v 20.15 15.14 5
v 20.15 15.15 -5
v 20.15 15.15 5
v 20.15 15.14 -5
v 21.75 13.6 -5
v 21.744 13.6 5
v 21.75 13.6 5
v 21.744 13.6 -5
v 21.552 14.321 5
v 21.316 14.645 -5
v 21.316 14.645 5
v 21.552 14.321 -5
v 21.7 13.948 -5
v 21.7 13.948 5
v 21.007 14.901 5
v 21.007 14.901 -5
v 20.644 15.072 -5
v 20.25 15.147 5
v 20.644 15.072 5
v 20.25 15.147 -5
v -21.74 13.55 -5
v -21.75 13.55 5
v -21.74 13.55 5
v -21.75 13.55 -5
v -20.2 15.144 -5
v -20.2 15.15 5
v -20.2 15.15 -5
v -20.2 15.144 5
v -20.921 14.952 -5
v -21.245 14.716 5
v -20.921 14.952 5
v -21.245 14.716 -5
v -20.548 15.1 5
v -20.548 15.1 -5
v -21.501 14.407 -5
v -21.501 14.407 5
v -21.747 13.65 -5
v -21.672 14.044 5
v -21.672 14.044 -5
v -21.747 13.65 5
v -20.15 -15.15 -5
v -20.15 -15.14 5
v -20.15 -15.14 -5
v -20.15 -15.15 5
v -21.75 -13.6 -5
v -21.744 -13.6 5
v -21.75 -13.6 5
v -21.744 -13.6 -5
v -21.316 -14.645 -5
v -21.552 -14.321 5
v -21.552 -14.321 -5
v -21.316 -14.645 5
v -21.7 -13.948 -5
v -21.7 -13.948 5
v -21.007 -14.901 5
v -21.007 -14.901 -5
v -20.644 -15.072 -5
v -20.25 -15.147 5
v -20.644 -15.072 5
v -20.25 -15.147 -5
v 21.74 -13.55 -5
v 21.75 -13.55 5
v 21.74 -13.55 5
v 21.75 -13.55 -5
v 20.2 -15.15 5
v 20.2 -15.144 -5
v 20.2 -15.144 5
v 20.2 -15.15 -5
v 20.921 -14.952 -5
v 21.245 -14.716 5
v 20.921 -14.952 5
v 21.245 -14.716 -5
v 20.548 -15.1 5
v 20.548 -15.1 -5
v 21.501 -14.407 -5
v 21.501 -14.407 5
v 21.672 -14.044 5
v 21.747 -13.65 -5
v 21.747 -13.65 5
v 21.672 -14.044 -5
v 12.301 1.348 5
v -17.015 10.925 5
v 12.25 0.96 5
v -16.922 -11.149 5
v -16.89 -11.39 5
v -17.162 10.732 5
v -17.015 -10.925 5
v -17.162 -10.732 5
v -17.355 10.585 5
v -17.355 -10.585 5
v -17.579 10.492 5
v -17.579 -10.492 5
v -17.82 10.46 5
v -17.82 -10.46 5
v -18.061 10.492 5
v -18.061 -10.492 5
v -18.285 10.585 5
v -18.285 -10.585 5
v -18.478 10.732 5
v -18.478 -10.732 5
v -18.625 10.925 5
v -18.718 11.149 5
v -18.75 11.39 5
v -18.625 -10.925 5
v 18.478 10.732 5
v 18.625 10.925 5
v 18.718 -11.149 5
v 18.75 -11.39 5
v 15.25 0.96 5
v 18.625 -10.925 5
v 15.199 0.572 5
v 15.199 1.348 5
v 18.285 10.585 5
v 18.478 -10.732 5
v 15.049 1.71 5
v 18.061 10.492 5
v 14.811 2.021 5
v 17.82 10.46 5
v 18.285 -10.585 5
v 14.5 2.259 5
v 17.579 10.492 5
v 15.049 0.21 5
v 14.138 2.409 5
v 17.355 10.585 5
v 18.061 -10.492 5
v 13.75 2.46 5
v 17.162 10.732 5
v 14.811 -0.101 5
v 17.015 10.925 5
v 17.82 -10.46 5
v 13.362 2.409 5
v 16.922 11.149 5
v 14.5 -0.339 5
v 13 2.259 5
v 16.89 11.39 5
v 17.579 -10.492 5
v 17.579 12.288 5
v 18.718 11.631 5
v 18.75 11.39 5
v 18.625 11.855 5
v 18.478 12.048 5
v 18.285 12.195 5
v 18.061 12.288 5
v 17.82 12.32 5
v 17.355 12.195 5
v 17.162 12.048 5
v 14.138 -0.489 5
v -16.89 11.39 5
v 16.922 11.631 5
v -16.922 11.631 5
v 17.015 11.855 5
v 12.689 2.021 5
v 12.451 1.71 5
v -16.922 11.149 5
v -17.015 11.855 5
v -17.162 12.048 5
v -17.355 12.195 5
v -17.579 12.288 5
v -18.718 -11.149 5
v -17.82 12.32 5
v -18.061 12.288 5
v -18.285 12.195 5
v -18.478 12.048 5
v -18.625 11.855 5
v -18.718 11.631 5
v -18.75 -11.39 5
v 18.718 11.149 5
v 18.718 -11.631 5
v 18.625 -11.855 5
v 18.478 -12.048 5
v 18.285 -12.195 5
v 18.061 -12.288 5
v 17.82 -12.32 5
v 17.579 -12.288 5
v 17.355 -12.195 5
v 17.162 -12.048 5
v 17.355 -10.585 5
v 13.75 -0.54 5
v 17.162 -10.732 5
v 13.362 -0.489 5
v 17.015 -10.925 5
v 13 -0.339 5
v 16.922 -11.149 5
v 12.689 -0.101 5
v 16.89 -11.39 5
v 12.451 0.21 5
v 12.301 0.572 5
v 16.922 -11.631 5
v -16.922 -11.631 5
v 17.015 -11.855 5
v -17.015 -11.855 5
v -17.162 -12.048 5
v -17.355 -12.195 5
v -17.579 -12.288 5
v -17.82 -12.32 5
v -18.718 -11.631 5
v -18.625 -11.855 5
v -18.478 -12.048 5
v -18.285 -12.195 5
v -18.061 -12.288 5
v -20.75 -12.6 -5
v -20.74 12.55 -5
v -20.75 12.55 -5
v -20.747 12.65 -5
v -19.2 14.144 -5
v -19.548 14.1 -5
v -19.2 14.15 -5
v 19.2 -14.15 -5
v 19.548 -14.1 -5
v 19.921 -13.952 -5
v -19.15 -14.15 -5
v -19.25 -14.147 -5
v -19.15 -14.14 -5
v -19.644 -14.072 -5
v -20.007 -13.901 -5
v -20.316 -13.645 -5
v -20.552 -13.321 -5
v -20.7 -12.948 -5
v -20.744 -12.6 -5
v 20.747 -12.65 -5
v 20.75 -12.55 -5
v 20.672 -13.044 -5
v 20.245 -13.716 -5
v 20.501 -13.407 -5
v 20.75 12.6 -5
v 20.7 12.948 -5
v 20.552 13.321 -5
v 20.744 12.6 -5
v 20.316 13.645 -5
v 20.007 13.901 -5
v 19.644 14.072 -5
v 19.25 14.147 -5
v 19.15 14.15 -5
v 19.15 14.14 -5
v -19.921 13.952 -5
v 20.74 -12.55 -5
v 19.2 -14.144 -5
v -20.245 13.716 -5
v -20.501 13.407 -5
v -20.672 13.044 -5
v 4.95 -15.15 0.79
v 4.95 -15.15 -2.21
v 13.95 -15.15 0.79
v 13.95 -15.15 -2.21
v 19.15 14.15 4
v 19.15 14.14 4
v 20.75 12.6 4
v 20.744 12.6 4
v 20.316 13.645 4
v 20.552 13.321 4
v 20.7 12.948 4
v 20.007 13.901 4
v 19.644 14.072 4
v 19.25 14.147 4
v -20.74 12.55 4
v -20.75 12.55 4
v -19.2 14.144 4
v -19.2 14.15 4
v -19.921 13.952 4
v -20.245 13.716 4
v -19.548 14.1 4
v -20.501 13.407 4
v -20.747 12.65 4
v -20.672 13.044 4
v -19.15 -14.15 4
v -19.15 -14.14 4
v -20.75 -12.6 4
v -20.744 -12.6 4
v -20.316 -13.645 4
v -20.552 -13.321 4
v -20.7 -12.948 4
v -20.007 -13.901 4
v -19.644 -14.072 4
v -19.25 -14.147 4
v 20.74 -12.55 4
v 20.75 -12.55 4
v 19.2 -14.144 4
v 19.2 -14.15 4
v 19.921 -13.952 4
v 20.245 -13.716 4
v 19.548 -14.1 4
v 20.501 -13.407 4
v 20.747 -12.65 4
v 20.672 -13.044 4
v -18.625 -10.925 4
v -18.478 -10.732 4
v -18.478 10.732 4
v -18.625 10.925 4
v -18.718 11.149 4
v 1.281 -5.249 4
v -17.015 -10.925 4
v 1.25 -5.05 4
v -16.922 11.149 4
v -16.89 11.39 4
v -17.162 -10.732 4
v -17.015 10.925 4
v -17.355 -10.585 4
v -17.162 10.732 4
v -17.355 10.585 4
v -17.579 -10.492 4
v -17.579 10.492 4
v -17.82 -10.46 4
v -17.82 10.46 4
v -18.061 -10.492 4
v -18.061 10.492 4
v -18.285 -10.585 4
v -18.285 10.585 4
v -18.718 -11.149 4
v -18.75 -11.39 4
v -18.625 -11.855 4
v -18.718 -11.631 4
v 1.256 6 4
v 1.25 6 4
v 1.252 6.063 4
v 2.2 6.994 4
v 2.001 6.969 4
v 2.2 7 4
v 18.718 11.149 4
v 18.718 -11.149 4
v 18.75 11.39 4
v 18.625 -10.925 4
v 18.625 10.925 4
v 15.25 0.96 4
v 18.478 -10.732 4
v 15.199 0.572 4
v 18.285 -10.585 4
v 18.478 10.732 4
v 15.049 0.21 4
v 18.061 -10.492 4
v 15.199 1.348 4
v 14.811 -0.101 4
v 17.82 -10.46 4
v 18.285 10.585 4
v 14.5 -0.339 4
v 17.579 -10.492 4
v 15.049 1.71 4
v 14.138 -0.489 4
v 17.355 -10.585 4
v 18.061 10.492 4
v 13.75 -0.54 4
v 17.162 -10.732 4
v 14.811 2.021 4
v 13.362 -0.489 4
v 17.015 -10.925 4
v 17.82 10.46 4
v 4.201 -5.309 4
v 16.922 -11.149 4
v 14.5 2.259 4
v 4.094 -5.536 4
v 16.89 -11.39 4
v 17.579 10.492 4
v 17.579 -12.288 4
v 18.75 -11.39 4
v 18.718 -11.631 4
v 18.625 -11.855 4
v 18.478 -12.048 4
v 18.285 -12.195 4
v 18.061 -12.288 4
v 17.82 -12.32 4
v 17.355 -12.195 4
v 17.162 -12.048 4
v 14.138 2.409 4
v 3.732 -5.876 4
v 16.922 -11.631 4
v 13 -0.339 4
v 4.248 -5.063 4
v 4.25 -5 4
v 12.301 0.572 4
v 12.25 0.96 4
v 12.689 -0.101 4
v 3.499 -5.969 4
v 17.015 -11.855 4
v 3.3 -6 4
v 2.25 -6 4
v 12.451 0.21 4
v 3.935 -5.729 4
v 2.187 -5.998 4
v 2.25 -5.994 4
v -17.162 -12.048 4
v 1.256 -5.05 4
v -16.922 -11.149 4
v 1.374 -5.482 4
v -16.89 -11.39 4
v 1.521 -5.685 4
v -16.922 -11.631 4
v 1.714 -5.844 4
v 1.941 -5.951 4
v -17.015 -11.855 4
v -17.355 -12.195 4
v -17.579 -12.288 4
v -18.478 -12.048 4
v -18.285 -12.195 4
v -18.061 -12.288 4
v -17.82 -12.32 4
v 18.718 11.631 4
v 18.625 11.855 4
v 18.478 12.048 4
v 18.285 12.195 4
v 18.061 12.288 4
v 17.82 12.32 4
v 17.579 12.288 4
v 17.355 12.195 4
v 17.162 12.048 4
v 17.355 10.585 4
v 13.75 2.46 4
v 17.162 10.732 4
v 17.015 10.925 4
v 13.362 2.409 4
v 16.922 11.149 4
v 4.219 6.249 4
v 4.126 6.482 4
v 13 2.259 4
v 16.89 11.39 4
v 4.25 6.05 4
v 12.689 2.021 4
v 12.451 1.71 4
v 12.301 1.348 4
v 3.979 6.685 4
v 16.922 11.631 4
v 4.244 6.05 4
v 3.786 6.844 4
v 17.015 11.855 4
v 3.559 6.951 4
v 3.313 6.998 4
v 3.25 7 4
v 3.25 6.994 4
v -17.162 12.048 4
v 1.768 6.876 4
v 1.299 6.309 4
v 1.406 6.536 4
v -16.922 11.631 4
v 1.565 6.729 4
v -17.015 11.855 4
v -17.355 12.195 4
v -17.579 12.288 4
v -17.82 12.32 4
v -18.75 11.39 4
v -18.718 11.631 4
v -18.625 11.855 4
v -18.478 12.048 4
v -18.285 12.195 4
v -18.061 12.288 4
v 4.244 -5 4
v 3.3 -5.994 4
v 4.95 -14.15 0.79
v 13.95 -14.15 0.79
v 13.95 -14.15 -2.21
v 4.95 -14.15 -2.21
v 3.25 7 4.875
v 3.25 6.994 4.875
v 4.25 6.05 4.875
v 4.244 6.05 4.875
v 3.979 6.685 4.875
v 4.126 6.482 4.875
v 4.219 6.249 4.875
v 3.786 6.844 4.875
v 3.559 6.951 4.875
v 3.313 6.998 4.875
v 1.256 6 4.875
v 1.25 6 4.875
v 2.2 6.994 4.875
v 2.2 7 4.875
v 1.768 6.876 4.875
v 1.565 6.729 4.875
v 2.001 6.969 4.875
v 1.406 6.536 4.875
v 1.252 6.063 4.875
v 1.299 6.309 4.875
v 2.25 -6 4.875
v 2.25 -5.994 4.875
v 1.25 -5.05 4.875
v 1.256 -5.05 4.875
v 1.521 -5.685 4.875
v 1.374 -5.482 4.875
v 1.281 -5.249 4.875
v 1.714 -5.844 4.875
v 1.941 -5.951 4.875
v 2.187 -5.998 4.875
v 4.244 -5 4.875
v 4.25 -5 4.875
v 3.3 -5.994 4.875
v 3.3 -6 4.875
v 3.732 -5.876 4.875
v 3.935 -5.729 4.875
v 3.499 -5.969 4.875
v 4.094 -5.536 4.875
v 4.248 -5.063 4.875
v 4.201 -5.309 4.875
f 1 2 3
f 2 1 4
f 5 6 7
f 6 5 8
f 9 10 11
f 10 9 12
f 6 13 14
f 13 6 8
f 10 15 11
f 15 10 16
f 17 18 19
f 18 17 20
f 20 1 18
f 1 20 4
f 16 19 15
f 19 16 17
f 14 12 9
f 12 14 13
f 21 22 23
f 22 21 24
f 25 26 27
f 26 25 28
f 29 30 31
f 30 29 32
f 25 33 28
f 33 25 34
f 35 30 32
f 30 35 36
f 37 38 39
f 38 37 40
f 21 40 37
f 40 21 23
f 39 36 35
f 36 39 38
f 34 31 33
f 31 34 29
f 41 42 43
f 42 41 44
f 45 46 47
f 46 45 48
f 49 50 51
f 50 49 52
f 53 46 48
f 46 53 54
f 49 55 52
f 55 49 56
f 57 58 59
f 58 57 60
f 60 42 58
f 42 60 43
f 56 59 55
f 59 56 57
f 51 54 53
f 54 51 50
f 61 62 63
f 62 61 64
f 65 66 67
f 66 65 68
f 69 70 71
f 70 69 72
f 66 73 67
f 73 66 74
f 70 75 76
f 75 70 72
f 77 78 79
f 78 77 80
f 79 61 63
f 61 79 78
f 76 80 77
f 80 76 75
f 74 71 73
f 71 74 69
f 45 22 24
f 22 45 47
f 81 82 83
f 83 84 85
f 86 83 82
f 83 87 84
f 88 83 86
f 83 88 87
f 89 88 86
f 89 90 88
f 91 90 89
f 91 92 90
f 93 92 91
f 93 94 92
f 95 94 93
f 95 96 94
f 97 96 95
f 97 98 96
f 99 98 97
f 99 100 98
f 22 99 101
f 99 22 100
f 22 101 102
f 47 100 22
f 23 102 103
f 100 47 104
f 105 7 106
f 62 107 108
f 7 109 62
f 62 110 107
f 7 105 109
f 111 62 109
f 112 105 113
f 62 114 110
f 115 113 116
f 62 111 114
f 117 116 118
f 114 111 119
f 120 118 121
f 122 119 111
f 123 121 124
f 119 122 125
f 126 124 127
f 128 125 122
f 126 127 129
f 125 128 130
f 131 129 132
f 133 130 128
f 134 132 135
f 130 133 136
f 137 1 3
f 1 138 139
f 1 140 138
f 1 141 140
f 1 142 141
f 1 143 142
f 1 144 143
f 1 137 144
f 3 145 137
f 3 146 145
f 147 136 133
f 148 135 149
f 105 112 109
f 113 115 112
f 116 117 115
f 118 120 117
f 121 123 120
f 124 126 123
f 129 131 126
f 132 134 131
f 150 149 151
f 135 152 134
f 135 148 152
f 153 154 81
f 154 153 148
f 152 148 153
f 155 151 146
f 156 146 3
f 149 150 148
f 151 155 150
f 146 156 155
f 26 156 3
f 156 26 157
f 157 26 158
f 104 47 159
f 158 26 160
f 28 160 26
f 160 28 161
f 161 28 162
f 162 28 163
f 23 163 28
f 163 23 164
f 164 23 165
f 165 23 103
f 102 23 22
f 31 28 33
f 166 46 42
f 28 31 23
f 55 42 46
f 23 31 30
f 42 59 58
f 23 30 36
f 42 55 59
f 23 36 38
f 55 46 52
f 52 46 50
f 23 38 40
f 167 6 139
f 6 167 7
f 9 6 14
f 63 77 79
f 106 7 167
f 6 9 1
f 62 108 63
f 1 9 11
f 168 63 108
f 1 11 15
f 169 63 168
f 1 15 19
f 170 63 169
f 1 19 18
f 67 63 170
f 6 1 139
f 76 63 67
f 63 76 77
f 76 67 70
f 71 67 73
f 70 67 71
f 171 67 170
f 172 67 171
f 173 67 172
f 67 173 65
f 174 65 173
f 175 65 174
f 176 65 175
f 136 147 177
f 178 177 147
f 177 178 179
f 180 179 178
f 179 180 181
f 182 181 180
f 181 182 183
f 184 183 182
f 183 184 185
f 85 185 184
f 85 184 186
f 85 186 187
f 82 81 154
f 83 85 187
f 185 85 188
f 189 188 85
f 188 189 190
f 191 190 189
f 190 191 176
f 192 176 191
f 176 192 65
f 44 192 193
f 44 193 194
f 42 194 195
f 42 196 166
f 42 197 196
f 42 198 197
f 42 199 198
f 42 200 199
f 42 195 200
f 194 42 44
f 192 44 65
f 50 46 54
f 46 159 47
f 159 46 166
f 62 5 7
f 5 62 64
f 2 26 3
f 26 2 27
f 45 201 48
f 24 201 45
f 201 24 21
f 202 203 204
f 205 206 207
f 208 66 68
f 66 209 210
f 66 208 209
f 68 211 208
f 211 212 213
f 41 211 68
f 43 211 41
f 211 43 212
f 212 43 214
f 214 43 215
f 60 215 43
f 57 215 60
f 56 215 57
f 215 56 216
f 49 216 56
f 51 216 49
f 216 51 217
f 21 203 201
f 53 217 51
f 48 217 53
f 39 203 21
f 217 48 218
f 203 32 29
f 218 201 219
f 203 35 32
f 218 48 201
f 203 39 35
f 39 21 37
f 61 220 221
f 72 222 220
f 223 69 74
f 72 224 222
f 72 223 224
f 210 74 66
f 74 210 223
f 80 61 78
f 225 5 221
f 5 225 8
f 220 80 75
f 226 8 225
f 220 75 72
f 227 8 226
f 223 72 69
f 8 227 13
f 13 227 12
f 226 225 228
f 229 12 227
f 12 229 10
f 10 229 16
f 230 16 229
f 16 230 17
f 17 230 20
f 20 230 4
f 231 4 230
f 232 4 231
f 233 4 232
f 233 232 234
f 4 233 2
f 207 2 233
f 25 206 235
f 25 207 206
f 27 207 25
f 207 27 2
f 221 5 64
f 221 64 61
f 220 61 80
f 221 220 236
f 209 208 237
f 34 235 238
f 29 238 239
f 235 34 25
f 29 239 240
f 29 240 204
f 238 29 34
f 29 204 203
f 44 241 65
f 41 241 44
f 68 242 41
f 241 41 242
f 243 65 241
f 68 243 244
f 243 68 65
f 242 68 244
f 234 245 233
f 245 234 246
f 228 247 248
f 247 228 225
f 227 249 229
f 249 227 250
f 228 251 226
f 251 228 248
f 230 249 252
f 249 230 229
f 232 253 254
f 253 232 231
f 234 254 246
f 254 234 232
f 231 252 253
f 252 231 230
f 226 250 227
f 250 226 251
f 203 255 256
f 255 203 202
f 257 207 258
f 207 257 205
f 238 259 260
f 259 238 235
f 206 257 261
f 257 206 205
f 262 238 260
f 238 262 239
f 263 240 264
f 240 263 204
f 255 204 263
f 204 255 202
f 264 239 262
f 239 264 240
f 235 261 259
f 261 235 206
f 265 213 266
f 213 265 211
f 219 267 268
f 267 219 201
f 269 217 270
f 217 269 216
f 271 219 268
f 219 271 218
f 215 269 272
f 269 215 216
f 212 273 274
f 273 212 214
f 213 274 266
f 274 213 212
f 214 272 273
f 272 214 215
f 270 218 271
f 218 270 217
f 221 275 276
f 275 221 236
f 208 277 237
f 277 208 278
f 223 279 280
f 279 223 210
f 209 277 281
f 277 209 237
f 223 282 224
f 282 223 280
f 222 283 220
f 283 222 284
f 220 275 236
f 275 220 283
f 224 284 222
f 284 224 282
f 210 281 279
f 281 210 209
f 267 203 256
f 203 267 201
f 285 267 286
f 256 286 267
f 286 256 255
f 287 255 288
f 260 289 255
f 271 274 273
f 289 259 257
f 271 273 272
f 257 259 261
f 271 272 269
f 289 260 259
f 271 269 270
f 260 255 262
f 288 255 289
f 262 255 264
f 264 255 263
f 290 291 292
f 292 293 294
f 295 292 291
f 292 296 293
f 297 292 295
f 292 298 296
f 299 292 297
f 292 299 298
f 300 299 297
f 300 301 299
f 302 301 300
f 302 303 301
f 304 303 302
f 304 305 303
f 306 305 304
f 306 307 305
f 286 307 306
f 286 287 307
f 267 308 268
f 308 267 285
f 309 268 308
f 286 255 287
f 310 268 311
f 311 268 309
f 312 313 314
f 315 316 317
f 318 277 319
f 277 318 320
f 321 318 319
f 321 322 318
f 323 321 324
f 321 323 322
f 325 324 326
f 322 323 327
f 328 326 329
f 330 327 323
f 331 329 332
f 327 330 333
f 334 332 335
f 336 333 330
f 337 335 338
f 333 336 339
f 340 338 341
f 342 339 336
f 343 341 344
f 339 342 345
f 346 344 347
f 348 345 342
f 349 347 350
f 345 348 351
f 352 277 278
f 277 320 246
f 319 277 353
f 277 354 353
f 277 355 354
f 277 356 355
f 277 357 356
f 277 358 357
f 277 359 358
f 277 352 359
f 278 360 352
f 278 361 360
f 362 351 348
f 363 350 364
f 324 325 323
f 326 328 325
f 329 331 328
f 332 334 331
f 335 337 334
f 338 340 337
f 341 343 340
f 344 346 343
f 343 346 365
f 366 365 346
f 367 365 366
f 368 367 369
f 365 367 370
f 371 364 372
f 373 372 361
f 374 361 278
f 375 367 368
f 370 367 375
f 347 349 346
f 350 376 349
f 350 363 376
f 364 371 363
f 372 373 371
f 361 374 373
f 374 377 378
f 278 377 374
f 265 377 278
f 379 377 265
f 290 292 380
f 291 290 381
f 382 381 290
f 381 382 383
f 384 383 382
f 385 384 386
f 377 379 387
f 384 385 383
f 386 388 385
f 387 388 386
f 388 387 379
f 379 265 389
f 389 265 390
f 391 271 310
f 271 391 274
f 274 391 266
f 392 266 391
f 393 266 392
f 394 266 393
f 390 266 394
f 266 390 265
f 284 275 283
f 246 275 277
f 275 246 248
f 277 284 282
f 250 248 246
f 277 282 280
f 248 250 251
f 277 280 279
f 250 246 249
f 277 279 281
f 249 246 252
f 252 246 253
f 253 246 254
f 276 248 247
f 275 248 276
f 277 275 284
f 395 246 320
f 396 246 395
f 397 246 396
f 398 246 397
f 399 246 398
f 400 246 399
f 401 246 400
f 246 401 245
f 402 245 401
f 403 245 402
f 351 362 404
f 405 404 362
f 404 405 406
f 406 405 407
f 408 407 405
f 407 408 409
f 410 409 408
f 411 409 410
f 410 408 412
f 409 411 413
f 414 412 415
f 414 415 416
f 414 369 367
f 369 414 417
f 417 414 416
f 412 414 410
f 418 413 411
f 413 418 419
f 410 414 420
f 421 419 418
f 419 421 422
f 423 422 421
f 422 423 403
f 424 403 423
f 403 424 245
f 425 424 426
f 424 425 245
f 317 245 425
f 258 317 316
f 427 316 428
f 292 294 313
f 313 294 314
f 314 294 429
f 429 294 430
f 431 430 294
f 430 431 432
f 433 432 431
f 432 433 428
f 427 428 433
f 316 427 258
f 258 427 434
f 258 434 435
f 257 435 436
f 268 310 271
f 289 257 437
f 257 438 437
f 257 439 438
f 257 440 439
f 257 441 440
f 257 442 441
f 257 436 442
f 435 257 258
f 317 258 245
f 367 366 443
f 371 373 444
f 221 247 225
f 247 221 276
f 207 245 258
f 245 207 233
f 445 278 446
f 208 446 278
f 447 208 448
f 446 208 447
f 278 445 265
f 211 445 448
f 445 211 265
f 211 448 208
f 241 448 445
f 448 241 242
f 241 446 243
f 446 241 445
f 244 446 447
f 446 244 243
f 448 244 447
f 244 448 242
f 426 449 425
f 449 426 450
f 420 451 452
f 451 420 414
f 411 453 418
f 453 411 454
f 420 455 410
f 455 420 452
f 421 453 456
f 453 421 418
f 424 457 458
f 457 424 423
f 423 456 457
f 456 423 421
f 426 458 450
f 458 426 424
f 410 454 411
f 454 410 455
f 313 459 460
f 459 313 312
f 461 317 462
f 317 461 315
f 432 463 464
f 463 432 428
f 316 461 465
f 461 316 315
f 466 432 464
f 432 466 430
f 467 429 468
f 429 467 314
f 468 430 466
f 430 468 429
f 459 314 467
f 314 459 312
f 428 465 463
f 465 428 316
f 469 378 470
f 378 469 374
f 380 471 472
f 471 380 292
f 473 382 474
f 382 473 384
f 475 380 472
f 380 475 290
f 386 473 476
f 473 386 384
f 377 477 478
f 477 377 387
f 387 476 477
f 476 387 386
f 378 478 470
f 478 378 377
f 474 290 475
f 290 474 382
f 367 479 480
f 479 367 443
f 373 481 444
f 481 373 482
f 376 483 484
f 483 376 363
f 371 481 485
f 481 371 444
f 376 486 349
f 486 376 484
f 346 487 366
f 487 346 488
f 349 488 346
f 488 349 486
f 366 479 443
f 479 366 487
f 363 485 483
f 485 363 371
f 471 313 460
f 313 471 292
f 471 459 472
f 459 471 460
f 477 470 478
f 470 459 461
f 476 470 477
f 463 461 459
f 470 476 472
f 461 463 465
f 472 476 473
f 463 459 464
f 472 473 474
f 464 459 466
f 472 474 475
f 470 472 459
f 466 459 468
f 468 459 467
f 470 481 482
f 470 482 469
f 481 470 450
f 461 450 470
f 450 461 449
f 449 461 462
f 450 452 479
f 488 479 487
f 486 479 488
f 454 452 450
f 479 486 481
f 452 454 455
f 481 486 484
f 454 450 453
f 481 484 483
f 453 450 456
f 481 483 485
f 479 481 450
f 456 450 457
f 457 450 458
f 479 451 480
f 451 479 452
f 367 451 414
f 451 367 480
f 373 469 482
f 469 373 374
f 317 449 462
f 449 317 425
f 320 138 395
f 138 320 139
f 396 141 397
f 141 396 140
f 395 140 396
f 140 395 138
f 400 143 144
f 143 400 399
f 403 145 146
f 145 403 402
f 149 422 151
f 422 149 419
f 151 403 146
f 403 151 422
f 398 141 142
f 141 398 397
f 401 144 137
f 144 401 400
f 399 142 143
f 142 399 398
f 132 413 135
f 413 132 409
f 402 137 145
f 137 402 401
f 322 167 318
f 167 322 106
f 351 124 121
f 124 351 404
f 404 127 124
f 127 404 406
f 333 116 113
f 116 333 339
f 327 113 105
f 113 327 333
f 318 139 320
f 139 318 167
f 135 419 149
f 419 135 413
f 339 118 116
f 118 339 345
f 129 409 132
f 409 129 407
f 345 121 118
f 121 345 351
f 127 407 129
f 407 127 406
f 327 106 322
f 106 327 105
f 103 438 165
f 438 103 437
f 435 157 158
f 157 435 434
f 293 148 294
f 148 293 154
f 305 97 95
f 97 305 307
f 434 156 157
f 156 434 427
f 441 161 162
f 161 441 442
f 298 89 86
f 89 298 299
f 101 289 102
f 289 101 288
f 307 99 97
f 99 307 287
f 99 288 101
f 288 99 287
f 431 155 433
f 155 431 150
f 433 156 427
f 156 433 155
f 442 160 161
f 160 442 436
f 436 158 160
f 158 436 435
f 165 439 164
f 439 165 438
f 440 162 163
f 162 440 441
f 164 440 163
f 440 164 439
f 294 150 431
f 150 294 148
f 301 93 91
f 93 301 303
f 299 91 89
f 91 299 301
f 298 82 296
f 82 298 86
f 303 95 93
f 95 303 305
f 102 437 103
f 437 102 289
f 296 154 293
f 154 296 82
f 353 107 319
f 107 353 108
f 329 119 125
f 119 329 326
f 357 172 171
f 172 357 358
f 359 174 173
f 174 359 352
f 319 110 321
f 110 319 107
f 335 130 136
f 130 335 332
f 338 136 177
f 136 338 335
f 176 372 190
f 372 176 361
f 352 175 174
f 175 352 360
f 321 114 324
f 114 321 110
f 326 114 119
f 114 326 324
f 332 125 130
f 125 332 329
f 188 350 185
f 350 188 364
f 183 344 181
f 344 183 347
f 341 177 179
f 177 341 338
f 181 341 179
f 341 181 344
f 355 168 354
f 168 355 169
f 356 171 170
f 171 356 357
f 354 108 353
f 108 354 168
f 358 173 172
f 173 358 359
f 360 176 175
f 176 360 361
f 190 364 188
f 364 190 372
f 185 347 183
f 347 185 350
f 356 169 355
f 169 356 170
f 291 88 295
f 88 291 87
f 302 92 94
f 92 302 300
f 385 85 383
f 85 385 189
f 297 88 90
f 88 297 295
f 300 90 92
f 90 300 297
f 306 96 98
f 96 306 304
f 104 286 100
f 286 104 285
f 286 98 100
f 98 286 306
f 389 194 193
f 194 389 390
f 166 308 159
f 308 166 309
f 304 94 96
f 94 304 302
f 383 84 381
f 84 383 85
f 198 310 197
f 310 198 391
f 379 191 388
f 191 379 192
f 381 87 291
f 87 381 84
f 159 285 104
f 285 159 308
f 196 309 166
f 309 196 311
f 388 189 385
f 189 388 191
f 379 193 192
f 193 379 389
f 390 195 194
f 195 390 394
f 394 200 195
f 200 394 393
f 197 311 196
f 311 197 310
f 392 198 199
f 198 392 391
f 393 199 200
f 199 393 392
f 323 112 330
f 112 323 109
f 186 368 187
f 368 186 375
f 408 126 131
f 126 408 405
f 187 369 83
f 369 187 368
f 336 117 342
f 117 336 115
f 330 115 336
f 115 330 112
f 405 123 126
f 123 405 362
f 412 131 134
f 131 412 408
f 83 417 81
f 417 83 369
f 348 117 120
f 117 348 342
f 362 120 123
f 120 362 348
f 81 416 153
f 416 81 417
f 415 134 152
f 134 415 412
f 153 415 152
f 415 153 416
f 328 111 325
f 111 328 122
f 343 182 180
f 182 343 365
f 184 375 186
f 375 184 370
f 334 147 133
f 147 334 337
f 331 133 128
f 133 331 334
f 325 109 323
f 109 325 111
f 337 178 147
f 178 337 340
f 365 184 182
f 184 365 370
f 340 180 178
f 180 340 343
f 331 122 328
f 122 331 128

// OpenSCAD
/*

Modified use of Sergio Vilches RoundedCornersCube Modules for OpenSCAD to generate cover for Matt Venn's EnergyWristband project https://github.com/mattvenn/energy-wristband

http://codeviewer.org/view/code:1b36 
Copyright (C) 2011 Sergio Vilches
This program is free software: you can redistribute it and/or modify it under the terms of the GNU General Public License as published by the Free Software Foundation, either version 3 of the License, or (at your option) any later version.
This program is distributed in the hope that it will be useful, but WITHOUT ANY WARRANTY; without even the implied warranty of MERCHANTABILITY or FITNESS FOR A PARTICULAR PURPOSE. See the GNU General Public License for more details. You should have received a copy of the GNU General Public License along with this program. If not, see <http://www.gnu.org/licenses/>.
Contact: s.vilches.e@gmail.com


    ----------------------------------------------------------- 
                 Round Corners Cube (Extruded)                
      roundCornersCube(x,y,z,r) Where:                        
         - x = Xdir width                                     
         - y = Ydir width                                     
         - z = Height of the cube                             
         - r = Rounding radious                               
                                                              
      Example: roundCornerCube(10,10,2,1);                    
     *Some times it's needed to use F6 to see good results!   
 	 ----------------------------------------------------------- 
*/

// Main Box Inner Dimensions
x1=41.5;
y1 = 28.3;
//height of cover flush with base or board
//allowing 0.5mm for lipo battery
z1=8;
//rounding radius
r = 1.6;
//thickness of case
thickness = 2;
//distance from base of the usb port
usbheightfrombase = 1.79;

//remove the srew hole and button material 
difference(){
mycover();
myscrews_button(1.86, 2.93, 2.76);
}


//custom module definitions

module myscrews_button(screwdiameter, xdistfromcorner, ydistfromcorner){
//position of button hole and radii of screws & buttons
xbuttondistfromedge = 7;
//offet from centre on y axis of the button
ybuttondistfromcentre = 0.96;
buttondiameter = 3;
buttonradius = buttondiameter/2;
screwradius = screwdiameter/2;
//position of recess to view the LEDs
leddistfromedge = 18;

	translate([x1/2-xdistfromcorner, y1/2-ydistfromcorner,(z1/2)-z1])cylinder(h=z1*2, r=screwradius,center=false, $fn=24);
translate([-x1/2+xdistfromcorner, y1/2-ydistfromcorner,(z1/2)-1])cylinder(h=10, r=screwradius,center=false, $fn=24);
translate([x1/2-xdistfromcorner, -y1/2+ydistfromcorner,(z1/2)-1])cylinder(h=10, r=screwradius,center=false, $fn=24);
translate([-x1/2+xdistfromcorner, -y1/2+ydistfromcorner,(z1/2)-1])cylinder(h=10, r=screwradius,center=false, $fn=24);
//button hole
translate([x1/2-xbuttondistfromedge, ybuttondistfromcentre,(z1/2)-1])cylinder(h=z1, r=buttonradius,center=false, $fn=24);
//ledviewer
translate([x1/2-leddistfromedge, 0.5,(z1/2)-1])roundCornersCube(3,13,z1/2-0.25,1);

}

//remove the usb port material

module mycover(){
difference(){
mybox();
translate([(x1/2)-(7.9*2),-(y1/2)-2 ,(-z1/2)+(usbheightfrombase)])myusb();
}
}

// the basic box
module mybox(){
 difference(){
	roundCornersCube(x1+thickness, y1 + thickness, z1 + thickness,r);
	translate ([0, 0,(z1/2)-5])roundCornersCube(x1,y1,z1+thickness,r);
}
}

//the microusbcharger port
module myusb(){	
usbx = 9;
usby = 3;
usbz = 3;

cube([usbx, usby, usbz], center = false);
}

//original module functions Copyright (C) 2011 Sergio Vilches

module createMeniscus(h,radius) 
// This module creates the shape that needs to be substracted from a cube to make its corners rounded.
//basicly the difference between a quarter of cylinder and a cube
difference(){        

   translate([radius/2+0.1,radius/2+0.1,0]){
      cube([radius+0.2,radius+0.1,h+0.2],center=true);         // All that 0.x numbers are to avoid "ghost boundaries" when substracting
   }

   cylinder(h=h+0.2,r=radius,$fn = 25,center=true);
}


module roundCornersCube(x,y,z,r)  // Now we just substract the shape we have created in the four corners
difference(){
   cube([x,y,z], center=true);

translate([x/2-r,y/2-r]){  // We move to the first corner (x,y)
      rotate(0){  
         createMeniscus(z,r); // And substract the meniscus
      }
   }
   translate([-x/2+r,y/2-r]){ // To the second corner (-x,y)
      rotate(90){
         createMeniscus(z,r); // But this time we have to rotate the meniscus 90 deg
      }
   }
      translate([-x/2+r,-y/2+r]){ // ... 
      rotate(180){
         createMeniscus(z,r);
      }
   }
      translate([x/2-r,-y/2+r]){
      rotate(270){
         createMeniscus(z,r);
      }
   }
}
